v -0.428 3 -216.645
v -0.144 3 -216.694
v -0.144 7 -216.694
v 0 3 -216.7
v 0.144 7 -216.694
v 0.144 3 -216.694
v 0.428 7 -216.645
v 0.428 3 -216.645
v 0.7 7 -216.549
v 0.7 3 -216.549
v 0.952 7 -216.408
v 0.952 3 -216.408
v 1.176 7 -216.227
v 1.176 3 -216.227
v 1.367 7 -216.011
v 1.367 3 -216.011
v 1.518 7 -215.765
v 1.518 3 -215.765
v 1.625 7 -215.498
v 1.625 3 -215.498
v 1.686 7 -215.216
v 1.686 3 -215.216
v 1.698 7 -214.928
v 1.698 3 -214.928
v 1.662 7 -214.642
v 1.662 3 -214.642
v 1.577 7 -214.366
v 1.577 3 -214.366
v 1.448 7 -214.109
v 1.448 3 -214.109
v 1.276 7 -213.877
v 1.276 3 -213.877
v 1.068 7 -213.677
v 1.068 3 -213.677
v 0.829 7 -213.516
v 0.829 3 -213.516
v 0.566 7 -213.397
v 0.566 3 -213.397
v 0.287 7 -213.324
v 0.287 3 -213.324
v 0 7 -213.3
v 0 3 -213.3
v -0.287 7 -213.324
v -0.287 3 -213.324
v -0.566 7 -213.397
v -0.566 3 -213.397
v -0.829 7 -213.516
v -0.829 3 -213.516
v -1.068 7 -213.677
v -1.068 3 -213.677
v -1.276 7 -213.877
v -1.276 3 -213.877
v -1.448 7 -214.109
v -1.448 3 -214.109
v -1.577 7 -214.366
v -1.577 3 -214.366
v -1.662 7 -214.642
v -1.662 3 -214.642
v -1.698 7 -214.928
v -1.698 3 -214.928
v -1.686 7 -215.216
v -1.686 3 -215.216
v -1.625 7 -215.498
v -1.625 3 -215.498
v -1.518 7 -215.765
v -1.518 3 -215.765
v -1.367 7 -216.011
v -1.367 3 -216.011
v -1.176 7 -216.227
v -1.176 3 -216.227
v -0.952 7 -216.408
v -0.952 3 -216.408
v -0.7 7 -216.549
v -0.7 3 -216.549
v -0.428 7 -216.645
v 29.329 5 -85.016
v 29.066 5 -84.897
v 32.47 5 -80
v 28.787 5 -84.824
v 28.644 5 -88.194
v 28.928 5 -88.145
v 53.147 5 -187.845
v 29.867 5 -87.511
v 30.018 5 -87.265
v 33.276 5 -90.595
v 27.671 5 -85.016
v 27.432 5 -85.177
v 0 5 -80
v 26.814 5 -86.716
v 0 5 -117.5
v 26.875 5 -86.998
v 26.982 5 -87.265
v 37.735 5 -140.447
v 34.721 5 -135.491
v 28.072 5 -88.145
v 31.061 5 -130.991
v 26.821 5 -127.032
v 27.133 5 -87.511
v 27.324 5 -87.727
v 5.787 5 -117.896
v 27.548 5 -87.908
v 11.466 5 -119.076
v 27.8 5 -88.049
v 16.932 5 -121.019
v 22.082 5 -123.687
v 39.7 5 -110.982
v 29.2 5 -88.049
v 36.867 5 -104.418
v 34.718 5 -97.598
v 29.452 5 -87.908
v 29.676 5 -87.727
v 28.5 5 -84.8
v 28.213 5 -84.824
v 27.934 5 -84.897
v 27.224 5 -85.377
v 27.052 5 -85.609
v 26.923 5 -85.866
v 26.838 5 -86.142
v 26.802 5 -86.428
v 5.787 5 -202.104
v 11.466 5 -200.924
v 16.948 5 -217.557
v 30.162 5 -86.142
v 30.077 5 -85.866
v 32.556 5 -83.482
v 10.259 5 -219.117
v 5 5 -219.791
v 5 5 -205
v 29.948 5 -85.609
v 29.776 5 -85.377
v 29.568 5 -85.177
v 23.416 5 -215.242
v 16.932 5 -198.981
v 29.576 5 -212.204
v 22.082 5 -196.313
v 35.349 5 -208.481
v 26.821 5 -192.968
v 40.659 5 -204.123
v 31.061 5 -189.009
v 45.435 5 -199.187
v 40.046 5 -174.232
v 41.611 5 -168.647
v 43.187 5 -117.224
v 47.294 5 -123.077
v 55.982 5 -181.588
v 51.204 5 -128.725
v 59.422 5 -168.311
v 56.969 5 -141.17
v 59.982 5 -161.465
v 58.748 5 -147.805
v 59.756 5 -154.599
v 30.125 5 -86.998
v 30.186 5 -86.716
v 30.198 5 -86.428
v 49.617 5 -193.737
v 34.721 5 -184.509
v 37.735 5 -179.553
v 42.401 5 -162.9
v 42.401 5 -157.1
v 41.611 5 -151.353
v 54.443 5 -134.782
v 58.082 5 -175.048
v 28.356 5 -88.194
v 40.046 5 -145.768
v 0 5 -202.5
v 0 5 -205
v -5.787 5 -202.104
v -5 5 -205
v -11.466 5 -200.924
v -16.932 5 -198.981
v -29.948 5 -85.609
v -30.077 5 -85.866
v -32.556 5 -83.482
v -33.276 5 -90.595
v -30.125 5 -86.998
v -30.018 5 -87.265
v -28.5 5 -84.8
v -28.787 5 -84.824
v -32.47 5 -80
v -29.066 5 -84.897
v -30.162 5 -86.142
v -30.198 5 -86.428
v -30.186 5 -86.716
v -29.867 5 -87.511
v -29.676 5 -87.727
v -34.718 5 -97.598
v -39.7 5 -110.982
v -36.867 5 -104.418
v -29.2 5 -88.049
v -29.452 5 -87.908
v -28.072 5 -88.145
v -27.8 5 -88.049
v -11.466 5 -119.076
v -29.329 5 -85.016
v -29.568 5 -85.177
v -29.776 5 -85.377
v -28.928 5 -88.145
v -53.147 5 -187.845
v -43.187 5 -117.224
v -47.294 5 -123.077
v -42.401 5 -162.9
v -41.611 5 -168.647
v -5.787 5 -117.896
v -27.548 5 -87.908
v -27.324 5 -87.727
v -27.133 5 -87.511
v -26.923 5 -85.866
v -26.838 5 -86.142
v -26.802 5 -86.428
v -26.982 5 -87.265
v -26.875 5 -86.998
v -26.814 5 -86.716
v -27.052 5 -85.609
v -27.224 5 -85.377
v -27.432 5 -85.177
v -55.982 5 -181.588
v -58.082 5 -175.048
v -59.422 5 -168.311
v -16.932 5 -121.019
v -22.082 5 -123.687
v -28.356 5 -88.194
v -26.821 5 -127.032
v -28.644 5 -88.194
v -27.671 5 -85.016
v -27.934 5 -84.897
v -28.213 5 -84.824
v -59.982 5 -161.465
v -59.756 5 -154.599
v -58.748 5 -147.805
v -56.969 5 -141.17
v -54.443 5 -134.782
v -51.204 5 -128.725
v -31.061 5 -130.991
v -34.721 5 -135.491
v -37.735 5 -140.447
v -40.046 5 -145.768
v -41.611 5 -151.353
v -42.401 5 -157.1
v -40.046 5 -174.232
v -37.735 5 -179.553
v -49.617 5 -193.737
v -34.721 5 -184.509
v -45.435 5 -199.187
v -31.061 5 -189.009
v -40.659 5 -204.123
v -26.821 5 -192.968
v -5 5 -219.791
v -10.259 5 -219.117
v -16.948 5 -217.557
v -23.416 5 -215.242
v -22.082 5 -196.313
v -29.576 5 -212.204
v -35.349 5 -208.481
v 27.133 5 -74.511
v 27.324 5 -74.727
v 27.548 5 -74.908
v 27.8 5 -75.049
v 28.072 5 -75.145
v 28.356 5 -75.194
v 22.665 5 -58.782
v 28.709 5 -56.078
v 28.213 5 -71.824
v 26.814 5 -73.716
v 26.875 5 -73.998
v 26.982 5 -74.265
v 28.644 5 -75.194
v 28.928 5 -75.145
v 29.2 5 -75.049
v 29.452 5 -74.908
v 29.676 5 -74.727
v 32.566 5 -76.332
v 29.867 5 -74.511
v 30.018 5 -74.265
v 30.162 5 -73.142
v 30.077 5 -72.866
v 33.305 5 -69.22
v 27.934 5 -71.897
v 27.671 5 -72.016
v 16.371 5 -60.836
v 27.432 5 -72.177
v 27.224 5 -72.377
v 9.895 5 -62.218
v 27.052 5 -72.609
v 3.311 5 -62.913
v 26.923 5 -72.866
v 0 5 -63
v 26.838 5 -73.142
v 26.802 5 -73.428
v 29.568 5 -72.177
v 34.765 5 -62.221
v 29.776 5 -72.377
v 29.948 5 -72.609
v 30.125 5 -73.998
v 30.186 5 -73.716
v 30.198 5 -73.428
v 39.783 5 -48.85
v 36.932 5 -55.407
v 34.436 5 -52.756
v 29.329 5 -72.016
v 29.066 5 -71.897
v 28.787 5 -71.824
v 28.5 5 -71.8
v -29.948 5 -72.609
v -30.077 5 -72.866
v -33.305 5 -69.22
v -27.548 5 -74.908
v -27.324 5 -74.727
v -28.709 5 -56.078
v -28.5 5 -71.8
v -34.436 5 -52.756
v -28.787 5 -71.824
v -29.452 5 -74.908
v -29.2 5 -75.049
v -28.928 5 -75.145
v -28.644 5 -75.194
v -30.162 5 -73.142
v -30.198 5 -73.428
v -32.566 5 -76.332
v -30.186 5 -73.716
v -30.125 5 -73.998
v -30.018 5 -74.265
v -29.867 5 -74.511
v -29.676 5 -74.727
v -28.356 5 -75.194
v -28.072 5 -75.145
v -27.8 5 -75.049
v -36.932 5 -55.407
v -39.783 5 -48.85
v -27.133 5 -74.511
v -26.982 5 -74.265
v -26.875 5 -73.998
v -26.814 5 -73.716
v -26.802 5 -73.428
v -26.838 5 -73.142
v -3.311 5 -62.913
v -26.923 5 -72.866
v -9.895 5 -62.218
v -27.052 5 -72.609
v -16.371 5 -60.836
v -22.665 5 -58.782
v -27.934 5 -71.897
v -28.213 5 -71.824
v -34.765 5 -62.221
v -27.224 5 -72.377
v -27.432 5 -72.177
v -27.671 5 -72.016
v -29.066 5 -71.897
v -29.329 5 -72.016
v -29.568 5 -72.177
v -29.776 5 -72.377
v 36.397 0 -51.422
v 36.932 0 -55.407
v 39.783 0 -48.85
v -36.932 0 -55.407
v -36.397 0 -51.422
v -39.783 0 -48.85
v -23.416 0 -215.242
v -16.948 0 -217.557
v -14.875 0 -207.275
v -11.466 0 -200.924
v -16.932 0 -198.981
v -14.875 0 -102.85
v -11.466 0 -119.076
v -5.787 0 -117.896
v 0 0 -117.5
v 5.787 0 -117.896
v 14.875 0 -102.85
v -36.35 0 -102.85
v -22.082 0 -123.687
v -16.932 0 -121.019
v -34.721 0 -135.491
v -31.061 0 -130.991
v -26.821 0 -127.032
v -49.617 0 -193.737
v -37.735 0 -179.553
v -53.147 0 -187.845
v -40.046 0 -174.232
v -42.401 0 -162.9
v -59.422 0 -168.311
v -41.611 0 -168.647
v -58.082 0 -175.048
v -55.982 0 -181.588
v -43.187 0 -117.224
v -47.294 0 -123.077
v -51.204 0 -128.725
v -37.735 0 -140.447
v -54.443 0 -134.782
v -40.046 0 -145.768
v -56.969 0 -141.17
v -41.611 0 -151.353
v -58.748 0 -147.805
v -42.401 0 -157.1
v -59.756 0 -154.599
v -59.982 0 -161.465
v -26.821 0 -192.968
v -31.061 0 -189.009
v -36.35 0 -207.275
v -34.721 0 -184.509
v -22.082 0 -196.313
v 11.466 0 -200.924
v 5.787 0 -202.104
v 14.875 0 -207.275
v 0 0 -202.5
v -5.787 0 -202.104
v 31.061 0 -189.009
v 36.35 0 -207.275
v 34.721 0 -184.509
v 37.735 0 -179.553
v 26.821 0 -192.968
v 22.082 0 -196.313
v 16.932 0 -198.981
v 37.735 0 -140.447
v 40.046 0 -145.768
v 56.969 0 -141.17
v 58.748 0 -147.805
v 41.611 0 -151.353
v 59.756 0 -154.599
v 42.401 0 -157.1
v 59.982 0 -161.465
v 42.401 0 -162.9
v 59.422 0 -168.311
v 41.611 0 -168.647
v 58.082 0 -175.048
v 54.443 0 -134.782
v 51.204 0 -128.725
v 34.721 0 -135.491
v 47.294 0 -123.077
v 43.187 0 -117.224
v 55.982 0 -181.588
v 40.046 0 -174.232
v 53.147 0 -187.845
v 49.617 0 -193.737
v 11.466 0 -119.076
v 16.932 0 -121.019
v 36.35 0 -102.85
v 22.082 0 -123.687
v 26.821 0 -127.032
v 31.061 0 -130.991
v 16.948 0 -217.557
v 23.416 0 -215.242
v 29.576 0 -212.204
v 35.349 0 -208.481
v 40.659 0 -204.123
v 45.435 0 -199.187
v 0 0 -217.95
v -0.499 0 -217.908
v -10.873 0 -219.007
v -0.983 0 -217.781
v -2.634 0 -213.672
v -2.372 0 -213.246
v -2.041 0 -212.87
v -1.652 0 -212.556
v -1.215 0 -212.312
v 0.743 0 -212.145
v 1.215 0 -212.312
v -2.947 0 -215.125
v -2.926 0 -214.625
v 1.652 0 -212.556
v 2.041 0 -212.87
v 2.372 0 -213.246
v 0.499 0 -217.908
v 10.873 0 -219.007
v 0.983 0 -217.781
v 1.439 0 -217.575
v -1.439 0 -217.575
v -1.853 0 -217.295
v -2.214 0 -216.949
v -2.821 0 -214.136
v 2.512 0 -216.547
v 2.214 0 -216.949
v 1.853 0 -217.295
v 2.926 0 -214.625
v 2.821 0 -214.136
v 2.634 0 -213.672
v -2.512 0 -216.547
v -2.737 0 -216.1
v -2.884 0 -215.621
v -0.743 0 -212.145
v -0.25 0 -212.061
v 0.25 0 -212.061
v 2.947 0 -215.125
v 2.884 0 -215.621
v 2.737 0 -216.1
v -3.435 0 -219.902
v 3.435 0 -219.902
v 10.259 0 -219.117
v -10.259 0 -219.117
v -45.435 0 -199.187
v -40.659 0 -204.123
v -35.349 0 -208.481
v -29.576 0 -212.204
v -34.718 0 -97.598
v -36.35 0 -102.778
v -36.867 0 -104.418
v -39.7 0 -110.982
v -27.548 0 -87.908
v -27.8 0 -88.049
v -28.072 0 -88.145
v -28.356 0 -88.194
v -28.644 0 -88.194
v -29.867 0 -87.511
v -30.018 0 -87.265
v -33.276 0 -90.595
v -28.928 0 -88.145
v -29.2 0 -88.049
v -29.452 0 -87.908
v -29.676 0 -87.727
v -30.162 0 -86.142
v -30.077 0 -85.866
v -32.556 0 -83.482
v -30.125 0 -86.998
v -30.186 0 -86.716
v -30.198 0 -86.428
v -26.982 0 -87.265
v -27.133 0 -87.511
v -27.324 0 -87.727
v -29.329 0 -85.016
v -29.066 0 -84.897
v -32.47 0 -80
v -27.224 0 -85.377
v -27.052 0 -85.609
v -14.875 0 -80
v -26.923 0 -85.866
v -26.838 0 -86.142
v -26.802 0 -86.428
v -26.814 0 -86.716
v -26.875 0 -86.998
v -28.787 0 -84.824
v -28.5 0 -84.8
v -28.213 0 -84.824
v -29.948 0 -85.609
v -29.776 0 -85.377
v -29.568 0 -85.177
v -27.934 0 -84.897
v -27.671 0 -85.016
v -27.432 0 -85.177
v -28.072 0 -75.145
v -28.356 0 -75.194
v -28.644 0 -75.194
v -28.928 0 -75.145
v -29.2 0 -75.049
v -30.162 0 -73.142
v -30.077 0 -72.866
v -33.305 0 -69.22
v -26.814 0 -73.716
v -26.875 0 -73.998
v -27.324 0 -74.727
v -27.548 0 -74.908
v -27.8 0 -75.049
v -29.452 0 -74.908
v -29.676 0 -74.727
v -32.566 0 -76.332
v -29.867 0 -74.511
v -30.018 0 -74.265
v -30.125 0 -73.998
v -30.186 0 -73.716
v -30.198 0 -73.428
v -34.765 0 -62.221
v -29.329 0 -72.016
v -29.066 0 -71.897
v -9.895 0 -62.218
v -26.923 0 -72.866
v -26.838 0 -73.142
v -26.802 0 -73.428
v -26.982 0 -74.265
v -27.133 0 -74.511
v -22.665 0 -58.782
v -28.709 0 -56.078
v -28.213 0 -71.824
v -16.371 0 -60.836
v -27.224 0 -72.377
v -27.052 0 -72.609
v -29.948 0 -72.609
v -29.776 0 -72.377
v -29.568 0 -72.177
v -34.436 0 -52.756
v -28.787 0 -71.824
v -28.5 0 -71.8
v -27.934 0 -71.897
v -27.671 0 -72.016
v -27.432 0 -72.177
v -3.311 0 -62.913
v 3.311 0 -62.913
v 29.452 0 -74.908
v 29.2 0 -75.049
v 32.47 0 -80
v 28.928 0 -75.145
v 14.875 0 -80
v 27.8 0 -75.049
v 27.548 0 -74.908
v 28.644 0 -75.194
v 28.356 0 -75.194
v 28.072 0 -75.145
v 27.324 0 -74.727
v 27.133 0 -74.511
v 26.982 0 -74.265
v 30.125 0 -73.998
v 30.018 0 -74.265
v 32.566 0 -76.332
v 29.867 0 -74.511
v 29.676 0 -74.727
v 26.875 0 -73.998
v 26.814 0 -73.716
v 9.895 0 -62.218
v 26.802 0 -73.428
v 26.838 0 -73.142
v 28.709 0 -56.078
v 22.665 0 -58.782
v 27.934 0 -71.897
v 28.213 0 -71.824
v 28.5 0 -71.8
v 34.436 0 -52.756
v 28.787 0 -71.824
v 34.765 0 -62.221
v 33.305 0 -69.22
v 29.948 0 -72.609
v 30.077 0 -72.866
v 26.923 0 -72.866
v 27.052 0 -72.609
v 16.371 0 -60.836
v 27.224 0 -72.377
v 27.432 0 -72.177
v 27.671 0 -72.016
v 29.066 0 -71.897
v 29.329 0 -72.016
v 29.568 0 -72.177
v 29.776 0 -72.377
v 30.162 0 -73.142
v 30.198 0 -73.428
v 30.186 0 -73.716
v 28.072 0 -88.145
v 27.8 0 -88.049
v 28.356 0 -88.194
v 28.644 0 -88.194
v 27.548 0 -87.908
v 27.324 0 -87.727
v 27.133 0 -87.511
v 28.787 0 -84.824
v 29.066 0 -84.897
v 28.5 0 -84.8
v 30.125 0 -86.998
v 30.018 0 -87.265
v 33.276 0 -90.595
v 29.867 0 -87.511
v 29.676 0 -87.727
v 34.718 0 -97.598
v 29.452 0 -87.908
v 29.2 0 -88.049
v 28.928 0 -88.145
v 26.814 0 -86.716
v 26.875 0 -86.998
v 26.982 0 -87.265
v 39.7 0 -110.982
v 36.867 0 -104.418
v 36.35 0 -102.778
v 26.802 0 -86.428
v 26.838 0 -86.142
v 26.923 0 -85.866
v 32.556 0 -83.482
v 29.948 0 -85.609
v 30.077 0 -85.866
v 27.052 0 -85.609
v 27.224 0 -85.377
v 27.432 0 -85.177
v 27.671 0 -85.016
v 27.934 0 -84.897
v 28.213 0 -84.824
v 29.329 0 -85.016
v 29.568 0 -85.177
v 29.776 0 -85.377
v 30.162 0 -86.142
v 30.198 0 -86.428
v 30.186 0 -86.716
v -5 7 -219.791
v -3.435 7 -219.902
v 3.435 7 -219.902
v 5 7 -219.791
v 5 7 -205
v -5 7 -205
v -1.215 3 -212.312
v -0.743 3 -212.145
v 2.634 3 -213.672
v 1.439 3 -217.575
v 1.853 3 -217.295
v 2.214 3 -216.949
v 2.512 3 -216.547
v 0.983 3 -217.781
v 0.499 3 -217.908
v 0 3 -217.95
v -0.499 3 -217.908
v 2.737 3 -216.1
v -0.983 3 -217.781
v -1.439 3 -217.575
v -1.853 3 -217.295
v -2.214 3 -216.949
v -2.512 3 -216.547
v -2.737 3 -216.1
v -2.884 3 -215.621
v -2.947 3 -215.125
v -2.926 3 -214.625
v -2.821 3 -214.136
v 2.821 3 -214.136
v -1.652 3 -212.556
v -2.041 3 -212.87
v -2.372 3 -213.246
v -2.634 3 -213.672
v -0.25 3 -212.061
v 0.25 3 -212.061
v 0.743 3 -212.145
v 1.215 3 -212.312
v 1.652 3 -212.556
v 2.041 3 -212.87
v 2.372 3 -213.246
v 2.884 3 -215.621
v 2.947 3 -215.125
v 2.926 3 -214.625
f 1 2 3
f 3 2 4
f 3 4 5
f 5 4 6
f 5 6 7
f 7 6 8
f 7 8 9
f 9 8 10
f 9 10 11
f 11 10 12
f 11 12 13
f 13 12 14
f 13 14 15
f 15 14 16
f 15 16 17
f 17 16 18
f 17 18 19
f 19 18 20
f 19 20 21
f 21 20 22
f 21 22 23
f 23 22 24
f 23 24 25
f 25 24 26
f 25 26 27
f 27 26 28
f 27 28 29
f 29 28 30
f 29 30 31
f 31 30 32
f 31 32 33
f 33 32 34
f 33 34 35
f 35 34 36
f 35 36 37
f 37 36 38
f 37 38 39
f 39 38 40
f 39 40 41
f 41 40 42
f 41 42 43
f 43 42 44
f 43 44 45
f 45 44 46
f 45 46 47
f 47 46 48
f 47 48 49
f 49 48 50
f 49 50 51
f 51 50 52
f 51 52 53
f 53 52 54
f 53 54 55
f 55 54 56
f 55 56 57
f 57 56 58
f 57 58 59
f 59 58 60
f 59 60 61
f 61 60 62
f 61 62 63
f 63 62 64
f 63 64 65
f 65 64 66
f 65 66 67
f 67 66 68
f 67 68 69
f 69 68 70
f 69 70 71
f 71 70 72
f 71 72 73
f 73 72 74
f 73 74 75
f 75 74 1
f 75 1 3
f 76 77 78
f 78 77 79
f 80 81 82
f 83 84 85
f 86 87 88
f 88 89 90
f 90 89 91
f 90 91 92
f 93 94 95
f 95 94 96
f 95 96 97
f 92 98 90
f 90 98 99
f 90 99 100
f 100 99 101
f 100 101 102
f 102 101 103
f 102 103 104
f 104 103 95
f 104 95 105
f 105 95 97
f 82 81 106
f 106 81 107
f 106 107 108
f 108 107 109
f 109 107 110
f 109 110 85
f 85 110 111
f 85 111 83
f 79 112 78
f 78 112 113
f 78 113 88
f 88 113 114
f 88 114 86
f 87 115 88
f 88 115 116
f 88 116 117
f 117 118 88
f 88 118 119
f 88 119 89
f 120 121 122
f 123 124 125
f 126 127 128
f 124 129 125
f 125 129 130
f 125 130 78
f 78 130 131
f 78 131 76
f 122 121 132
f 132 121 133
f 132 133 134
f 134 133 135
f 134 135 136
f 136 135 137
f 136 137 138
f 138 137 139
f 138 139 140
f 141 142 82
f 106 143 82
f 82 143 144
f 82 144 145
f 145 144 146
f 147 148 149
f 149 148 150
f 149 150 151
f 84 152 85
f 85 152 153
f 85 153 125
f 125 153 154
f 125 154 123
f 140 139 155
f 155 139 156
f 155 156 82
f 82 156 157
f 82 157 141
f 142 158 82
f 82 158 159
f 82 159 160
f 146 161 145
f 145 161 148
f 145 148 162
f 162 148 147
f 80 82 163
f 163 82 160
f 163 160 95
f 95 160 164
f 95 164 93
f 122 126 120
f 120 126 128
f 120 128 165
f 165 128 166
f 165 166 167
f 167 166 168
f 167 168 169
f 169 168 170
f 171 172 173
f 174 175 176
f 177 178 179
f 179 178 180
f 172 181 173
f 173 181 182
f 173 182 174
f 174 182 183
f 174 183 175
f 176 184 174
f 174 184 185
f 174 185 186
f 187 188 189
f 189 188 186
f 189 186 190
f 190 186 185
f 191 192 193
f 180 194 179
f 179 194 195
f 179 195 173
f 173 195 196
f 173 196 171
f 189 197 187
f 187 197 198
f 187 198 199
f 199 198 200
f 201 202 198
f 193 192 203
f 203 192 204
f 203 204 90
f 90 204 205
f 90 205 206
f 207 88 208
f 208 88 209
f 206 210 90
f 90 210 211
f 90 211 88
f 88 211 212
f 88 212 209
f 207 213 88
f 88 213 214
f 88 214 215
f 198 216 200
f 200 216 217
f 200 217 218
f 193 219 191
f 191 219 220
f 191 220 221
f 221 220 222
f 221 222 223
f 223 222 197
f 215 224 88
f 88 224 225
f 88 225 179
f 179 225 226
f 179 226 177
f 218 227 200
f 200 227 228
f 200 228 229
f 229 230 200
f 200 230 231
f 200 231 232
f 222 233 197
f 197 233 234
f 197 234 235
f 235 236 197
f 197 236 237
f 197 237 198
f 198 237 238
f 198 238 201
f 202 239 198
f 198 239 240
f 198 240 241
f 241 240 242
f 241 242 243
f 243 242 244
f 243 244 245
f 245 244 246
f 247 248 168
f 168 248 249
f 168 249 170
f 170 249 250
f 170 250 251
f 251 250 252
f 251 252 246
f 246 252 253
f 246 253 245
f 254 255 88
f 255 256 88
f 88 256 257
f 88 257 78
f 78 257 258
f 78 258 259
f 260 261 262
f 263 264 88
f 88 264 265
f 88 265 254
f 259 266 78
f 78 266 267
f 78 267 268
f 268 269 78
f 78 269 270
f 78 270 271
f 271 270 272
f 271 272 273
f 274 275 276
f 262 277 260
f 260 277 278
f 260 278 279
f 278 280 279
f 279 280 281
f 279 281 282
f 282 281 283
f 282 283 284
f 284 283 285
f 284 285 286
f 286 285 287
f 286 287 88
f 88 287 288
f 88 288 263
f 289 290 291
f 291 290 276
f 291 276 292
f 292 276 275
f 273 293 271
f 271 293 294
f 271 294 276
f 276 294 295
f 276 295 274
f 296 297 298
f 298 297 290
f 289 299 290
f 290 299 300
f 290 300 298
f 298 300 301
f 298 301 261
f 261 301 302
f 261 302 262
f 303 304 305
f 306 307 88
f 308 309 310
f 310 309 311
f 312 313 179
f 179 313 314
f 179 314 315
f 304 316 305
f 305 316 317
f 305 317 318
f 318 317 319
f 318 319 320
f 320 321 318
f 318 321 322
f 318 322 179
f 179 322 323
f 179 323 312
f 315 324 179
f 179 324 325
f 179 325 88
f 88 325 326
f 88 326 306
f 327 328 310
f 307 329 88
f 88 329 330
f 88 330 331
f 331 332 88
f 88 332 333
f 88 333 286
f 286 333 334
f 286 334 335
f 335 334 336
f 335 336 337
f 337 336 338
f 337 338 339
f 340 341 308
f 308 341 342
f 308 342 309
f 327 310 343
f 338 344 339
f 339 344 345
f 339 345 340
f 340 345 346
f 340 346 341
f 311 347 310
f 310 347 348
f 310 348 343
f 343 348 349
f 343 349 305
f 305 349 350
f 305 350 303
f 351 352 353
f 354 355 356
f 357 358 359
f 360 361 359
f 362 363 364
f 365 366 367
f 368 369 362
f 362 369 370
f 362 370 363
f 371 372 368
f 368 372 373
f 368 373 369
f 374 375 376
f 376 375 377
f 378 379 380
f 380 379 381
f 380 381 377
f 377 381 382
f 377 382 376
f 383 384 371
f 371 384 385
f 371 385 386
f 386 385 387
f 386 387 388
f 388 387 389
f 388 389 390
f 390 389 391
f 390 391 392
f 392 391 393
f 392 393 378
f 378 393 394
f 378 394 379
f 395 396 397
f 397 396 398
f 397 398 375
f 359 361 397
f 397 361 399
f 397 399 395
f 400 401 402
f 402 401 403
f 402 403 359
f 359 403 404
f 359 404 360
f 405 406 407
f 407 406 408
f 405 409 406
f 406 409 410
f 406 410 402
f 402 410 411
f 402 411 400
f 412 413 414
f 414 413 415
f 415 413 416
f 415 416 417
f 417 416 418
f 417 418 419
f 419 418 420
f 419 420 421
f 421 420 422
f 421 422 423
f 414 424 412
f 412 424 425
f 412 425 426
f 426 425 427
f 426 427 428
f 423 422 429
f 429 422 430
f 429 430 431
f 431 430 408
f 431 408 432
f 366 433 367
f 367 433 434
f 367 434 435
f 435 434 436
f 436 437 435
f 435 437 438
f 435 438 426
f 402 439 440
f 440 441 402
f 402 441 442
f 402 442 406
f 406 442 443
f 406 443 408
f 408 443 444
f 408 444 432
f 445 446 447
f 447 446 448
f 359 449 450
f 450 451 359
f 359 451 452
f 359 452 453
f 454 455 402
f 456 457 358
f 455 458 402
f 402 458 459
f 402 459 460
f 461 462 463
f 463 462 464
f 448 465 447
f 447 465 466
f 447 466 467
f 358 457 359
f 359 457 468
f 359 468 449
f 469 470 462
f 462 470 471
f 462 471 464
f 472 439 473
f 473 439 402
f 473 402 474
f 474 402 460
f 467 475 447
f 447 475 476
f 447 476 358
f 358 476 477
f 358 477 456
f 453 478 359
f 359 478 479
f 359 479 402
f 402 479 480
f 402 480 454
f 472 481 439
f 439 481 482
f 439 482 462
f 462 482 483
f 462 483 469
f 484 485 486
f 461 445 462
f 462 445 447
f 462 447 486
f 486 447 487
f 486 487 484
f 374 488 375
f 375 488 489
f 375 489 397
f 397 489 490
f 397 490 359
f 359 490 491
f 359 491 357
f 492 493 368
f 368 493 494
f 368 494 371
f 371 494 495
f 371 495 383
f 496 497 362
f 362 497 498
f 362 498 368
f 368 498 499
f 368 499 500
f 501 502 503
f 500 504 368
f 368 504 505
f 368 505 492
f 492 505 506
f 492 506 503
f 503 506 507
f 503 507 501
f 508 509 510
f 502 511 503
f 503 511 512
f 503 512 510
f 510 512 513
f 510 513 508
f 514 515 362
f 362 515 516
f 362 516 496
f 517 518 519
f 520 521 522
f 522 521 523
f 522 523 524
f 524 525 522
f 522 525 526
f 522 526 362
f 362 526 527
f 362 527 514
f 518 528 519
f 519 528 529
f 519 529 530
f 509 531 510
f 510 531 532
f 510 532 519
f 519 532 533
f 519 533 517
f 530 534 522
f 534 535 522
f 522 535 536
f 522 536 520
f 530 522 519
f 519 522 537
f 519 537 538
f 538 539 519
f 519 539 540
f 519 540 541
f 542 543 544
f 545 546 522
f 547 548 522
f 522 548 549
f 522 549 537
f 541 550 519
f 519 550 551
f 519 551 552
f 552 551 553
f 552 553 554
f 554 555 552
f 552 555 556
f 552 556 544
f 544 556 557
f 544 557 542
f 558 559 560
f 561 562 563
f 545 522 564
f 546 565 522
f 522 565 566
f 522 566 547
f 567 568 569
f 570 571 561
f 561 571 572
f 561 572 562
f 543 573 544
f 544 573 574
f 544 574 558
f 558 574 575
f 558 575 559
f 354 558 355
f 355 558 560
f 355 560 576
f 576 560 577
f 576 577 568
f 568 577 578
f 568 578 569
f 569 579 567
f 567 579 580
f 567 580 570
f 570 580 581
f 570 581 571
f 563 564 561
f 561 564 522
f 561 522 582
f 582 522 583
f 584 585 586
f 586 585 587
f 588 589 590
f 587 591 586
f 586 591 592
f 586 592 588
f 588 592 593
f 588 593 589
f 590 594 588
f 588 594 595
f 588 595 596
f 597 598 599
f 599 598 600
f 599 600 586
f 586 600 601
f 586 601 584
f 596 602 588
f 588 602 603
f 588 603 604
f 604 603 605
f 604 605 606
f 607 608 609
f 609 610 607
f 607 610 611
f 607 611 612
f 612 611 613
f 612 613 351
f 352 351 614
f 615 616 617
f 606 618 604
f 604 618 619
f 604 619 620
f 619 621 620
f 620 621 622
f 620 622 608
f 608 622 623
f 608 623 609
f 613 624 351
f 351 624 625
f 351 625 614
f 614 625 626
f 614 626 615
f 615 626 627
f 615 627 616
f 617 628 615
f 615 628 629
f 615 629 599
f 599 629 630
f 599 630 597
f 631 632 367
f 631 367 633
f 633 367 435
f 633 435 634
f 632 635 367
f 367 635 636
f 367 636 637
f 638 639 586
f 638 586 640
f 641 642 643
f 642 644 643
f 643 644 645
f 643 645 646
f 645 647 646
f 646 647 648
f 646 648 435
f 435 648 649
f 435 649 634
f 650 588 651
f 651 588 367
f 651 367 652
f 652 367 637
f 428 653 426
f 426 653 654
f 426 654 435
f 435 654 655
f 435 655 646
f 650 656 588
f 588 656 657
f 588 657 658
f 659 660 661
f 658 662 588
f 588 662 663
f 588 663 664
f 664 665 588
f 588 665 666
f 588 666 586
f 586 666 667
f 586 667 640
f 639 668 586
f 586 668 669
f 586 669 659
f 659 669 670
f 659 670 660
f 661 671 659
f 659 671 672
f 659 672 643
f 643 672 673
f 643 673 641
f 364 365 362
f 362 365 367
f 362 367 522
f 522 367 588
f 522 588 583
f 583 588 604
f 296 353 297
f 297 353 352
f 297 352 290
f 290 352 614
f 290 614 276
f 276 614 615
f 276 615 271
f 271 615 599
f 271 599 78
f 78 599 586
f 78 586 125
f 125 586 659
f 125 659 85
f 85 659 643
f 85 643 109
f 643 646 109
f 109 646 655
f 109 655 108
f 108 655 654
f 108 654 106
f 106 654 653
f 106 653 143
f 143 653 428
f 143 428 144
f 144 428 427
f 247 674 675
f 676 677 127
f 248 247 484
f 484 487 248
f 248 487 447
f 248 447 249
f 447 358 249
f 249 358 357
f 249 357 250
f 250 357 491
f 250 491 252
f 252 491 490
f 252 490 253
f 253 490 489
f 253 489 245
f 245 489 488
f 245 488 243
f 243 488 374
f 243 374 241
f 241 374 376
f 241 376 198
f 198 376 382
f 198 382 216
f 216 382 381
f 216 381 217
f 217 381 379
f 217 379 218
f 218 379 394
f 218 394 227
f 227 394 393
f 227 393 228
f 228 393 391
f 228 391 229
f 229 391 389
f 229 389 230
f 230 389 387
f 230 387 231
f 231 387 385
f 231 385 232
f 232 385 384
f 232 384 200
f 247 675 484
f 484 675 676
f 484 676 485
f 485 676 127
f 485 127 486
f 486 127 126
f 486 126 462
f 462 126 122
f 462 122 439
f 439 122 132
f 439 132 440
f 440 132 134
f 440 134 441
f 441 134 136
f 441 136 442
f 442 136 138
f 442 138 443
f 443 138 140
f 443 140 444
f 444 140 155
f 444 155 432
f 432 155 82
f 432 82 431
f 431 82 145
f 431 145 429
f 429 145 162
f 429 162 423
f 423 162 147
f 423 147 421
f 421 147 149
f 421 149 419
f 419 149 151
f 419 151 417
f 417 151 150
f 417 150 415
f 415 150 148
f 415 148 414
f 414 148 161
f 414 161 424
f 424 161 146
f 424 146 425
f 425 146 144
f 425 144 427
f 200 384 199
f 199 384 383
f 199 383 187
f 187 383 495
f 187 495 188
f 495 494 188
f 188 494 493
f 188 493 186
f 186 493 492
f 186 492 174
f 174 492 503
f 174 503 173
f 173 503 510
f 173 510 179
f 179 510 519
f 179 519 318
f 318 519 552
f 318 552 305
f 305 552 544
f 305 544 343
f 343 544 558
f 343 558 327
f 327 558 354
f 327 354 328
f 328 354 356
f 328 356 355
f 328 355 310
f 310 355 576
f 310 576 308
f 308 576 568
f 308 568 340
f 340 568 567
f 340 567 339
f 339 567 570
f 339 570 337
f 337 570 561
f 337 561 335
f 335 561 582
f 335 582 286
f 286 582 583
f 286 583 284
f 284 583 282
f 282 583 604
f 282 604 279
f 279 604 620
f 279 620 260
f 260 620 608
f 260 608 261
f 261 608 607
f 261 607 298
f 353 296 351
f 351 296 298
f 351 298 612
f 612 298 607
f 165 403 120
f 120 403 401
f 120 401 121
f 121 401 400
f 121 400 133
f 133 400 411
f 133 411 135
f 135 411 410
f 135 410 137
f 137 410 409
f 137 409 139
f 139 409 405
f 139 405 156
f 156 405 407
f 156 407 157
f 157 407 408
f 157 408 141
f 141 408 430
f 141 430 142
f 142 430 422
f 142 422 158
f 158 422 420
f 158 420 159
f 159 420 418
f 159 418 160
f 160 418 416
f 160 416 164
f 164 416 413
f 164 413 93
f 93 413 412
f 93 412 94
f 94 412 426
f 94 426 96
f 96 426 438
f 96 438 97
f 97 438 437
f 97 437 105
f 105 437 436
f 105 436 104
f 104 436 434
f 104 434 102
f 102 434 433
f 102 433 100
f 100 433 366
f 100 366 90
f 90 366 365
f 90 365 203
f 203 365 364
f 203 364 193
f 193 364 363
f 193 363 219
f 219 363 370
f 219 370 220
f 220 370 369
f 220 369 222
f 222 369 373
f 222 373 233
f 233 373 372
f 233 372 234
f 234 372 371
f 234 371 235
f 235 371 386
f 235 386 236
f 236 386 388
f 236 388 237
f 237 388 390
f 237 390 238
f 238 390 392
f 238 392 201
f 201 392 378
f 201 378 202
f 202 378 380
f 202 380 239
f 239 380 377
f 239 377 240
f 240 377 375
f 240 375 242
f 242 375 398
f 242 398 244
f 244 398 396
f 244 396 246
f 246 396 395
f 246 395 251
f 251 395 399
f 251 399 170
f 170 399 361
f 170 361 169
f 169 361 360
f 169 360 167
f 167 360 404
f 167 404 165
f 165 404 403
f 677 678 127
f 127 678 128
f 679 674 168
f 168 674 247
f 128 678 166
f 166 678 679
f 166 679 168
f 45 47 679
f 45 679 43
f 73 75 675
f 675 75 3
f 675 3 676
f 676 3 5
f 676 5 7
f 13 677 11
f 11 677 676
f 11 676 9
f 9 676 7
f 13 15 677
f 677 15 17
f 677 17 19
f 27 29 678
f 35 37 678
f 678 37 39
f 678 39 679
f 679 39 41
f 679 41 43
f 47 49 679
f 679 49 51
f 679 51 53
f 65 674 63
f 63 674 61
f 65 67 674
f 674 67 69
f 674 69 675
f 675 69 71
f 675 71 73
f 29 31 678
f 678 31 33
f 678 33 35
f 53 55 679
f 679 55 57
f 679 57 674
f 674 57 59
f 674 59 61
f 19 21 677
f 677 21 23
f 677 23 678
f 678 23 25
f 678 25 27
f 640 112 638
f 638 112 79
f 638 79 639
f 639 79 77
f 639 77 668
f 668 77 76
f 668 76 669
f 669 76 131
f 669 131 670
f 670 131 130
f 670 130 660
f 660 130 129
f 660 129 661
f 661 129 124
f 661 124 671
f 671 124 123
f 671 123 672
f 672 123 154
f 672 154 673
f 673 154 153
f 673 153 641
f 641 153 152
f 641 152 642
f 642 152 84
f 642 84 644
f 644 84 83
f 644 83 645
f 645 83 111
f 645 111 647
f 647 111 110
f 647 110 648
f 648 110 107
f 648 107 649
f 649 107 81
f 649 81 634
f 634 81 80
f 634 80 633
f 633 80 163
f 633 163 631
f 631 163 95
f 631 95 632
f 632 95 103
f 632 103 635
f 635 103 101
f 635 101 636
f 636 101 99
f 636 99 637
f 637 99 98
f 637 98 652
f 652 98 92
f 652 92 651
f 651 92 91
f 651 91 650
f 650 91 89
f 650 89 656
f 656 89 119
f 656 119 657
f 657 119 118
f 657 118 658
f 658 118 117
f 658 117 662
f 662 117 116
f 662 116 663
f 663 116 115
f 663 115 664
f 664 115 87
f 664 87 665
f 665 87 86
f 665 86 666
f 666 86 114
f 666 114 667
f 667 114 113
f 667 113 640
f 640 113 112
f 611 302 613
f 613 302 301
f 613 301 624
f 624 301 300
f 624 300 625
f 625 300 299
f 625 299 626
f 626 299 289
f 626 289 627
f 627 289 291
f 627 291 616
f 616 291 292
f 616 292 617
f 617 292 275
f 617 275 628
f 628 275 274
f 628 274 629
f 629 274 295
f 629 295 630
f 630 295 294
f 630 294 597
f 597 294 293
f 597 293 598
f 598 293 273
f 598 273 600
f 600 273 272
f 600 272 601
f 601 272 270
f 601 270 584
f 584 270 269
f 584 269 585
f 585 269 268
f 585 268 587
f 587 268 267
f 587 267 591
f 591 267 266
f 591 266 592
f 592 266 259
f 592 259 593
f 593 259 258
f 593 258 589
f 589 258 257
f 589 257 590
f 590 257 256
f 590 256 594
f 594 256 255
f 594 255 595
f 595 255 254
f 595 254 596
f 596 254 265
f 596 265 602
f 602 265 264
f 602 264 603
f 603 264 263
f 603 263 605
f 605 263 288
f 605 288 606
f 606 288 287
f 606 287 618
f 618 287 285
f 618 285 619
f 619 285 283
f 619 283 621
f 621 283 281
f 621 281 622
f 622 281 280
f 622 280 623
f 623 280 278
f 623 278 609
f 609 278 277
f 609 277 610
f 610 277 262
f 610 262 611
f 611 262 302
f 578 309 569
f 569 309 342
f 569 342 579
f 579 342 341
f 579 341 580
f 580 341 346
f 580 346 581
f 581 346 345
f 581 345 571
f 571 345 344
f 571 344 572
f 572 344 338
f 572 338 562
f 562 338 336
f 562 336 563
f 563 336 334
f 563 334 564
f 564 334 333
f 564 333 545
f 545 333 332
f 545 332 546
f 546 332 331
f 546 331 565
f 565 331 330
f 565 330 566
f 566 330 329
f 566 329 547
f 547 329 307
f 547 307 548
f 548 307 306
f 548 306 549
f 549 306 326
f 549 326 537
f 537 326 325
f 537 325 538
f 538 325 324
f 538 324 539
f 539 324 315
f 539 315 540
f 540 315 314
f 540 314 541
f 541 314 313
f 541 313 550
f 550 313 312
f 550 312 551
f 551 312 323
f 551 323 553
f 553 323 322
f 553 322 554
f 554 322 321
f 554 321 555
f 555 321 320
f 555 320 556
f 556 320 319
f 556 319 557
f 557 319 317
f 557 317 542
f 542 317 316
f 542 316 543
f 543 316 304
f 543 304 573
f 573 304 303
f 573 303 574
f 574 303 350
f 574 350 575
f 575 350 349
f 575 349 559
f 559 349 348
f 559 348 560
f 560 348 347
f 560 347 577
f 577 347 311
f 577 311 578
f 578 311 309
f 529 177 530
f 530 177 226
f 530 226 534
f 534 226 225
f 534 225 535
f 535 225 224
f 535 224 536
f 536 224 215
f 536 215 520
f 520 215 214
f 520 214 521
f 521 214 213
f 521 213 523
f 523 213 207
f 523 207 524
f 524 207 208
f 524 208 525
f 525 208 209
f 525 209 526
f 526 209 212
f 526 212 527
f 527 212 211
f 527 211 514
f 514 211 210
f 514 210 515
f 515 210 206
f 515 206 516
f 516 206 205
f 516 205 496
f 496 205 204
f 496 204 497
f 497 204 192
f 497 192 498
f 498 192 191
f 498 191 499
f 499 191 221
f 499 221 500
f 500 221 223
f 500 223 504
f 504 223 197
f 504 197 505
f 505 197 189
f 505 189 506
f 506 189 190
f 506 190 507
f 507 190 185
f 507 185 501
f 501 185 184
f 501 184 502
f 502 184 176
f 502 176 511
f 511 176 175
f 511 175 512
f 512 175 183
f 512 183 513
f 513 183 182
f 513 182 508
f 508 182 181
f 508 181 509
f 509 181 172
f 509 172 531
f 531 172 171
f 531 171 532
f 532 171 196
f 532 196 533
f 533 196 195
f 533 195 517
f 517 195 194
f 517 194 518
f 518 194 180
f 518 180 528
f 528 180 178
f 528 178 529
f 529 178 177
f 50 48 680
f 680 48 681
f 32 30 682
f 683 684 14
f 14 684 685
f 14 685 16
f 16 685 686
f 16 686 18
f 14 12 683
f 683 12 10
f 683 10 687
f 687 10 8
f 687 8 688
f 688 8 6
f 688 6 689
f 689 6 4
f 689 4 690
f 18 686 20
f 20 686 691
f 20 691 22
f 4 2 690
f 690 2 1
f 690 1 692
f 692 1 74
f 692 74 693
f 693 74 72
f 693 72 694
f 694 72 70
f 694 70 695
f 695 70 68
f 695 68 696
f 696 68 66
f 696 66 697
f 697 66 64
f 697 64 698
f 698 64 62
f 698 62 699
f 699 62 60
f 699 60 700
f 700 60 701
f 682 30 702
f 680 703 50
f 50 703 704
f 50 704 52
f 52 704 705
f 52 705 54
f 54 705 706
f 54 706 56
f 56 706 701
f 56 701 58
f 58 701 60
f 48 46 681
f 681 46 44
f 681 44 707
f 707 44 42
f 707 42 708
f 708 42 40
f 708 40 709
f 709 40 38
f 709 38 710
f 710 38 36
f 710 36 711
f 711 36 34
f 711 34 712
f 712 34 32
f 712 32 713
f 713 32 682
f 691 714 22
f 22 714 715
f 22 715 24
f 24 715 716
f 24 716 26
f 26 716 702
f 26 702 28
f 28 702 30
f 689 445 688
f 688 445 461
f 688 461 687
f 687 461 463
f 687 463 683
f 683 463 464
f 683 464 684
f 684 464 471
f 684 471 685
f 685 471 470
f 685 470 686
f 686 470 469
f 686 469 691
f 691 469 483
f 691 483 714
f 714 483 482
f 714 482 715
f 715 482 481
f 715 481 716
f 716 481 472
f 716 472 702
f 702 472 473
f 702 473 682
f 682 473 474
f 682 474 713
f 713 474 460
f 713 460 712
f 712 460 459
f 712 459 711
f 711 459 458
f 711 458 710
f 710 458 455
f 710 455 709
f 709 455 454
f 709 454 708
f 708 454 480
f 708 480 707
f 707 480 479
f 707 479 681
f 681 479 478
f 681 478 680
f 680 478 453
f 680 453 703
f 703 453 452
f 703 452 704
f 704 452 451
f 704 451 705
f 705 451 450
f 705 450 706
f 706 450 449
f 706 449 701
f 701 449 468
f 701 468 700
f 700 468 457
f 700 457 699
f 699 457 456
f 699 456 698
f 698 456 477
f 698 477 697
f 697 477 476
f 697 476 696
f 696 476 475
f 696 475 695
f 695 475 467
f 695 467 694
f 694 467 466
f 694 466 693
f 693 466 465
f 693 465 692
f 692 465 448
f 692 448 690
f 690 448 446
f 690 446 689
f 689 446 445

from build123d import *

# Parameters (mm, degrees)
CROQUIS1_R              = 42.5
SALIENTE_EXTRUIR1_DEPTH = 5
SALIENTE_EXTRUIR2_DEPTH = 2
CROQUIS3_R              = 1.7
CORTAR_EXTRUIR1_DEPTH   = 21
CROQUIS4_R              = 2.95
CORTAR_EXTRUIR2_DEPTH   = 3


with BuildPart() as part:
    # Croquis1 → Saliente-Extruir1 (new body)
    with BuildSketch(Plane(origin=(0, 0, 0), x_dir=(1, 0, 0), z_dir=(0, 1, 0))):
        with BuildLine():
            ThreePointArc((39.782879484, 48.85), (0, 63), (-39.782879484, 48.85))
            ThreePointArc((-39.782879484, 48.85), (-32.82545617, 87.047566078), (-47.293763221, 123.077107909))
            ThreePointArc((-47.293763221, 123.077107909), (0, 220), (47.293763221, 123.077107909))
            ThreePointArc((47.293763221, 123.077107909), (32.82545617, 87.047566078), (39.782879484, 48.85))
        make_face()
        with Locations((0, 160)):
            Circle(CROQUIS1_R, mode=Mode.SUBTRACT)
    extrude(amount=SALIENTE_EXTRUIR1_DEPTH)

    # Croquis2 → Saliente-Extruir2 (add)
    with BuildSketch(Plane(origin=(0, 5, 0), x_dir=(1, 0, 0), z_dir=(0, 1, 0))):
        with BuildLine():
            Line((5, 205), (-5, 205))
            Line((-5, 205), (-5, 219.791303716))
            ThreePointArc((-5, 219.791303716), (0, 220), (5, 219.791303716))
            Line((5, 219.791303716), (5, 205))
        make_face()
    extrude(amount=SALIENTE_EXTRUIR2_DEPTH)

    # Croquis3 → Cortar-Extruir1 (cut)
    with BuildSketch(Plane(origin=(0, 7, 0), x_dir=(1, 0, 0), z_dir=(0, 1, 0))):
        with Locations((0, 215)):
            Circle(CROQUIS3_R)
        with Locations((-28.5, 86.5)):
            Circle(CROQUIS3_R)
        with Locations((-28.5, 73.5)):
            Circle(CROQUIS3_R)
        with Locations((28.5, 73.5)):
            Circle(CROQUIS3_R)
        with Locations((28.5, 86.5)):
            Circle(CROQUIS3_R)
    extrude(amount=-CORTAR_EXTRUIR1_DEPTH, mode=Mode.SUBTRACT)

    # Croquis4 → Cortar-Extruir2 (cut)
    with BuildSketch(Plane.XZ):
        with Locations((0, -215)):
            Circle(CROQUIS4_R)
    extrude(amount=-CORTAR_EXTRUIR2_DEPTH, mode=Mode.SUBTRACT)


solid = part.part
